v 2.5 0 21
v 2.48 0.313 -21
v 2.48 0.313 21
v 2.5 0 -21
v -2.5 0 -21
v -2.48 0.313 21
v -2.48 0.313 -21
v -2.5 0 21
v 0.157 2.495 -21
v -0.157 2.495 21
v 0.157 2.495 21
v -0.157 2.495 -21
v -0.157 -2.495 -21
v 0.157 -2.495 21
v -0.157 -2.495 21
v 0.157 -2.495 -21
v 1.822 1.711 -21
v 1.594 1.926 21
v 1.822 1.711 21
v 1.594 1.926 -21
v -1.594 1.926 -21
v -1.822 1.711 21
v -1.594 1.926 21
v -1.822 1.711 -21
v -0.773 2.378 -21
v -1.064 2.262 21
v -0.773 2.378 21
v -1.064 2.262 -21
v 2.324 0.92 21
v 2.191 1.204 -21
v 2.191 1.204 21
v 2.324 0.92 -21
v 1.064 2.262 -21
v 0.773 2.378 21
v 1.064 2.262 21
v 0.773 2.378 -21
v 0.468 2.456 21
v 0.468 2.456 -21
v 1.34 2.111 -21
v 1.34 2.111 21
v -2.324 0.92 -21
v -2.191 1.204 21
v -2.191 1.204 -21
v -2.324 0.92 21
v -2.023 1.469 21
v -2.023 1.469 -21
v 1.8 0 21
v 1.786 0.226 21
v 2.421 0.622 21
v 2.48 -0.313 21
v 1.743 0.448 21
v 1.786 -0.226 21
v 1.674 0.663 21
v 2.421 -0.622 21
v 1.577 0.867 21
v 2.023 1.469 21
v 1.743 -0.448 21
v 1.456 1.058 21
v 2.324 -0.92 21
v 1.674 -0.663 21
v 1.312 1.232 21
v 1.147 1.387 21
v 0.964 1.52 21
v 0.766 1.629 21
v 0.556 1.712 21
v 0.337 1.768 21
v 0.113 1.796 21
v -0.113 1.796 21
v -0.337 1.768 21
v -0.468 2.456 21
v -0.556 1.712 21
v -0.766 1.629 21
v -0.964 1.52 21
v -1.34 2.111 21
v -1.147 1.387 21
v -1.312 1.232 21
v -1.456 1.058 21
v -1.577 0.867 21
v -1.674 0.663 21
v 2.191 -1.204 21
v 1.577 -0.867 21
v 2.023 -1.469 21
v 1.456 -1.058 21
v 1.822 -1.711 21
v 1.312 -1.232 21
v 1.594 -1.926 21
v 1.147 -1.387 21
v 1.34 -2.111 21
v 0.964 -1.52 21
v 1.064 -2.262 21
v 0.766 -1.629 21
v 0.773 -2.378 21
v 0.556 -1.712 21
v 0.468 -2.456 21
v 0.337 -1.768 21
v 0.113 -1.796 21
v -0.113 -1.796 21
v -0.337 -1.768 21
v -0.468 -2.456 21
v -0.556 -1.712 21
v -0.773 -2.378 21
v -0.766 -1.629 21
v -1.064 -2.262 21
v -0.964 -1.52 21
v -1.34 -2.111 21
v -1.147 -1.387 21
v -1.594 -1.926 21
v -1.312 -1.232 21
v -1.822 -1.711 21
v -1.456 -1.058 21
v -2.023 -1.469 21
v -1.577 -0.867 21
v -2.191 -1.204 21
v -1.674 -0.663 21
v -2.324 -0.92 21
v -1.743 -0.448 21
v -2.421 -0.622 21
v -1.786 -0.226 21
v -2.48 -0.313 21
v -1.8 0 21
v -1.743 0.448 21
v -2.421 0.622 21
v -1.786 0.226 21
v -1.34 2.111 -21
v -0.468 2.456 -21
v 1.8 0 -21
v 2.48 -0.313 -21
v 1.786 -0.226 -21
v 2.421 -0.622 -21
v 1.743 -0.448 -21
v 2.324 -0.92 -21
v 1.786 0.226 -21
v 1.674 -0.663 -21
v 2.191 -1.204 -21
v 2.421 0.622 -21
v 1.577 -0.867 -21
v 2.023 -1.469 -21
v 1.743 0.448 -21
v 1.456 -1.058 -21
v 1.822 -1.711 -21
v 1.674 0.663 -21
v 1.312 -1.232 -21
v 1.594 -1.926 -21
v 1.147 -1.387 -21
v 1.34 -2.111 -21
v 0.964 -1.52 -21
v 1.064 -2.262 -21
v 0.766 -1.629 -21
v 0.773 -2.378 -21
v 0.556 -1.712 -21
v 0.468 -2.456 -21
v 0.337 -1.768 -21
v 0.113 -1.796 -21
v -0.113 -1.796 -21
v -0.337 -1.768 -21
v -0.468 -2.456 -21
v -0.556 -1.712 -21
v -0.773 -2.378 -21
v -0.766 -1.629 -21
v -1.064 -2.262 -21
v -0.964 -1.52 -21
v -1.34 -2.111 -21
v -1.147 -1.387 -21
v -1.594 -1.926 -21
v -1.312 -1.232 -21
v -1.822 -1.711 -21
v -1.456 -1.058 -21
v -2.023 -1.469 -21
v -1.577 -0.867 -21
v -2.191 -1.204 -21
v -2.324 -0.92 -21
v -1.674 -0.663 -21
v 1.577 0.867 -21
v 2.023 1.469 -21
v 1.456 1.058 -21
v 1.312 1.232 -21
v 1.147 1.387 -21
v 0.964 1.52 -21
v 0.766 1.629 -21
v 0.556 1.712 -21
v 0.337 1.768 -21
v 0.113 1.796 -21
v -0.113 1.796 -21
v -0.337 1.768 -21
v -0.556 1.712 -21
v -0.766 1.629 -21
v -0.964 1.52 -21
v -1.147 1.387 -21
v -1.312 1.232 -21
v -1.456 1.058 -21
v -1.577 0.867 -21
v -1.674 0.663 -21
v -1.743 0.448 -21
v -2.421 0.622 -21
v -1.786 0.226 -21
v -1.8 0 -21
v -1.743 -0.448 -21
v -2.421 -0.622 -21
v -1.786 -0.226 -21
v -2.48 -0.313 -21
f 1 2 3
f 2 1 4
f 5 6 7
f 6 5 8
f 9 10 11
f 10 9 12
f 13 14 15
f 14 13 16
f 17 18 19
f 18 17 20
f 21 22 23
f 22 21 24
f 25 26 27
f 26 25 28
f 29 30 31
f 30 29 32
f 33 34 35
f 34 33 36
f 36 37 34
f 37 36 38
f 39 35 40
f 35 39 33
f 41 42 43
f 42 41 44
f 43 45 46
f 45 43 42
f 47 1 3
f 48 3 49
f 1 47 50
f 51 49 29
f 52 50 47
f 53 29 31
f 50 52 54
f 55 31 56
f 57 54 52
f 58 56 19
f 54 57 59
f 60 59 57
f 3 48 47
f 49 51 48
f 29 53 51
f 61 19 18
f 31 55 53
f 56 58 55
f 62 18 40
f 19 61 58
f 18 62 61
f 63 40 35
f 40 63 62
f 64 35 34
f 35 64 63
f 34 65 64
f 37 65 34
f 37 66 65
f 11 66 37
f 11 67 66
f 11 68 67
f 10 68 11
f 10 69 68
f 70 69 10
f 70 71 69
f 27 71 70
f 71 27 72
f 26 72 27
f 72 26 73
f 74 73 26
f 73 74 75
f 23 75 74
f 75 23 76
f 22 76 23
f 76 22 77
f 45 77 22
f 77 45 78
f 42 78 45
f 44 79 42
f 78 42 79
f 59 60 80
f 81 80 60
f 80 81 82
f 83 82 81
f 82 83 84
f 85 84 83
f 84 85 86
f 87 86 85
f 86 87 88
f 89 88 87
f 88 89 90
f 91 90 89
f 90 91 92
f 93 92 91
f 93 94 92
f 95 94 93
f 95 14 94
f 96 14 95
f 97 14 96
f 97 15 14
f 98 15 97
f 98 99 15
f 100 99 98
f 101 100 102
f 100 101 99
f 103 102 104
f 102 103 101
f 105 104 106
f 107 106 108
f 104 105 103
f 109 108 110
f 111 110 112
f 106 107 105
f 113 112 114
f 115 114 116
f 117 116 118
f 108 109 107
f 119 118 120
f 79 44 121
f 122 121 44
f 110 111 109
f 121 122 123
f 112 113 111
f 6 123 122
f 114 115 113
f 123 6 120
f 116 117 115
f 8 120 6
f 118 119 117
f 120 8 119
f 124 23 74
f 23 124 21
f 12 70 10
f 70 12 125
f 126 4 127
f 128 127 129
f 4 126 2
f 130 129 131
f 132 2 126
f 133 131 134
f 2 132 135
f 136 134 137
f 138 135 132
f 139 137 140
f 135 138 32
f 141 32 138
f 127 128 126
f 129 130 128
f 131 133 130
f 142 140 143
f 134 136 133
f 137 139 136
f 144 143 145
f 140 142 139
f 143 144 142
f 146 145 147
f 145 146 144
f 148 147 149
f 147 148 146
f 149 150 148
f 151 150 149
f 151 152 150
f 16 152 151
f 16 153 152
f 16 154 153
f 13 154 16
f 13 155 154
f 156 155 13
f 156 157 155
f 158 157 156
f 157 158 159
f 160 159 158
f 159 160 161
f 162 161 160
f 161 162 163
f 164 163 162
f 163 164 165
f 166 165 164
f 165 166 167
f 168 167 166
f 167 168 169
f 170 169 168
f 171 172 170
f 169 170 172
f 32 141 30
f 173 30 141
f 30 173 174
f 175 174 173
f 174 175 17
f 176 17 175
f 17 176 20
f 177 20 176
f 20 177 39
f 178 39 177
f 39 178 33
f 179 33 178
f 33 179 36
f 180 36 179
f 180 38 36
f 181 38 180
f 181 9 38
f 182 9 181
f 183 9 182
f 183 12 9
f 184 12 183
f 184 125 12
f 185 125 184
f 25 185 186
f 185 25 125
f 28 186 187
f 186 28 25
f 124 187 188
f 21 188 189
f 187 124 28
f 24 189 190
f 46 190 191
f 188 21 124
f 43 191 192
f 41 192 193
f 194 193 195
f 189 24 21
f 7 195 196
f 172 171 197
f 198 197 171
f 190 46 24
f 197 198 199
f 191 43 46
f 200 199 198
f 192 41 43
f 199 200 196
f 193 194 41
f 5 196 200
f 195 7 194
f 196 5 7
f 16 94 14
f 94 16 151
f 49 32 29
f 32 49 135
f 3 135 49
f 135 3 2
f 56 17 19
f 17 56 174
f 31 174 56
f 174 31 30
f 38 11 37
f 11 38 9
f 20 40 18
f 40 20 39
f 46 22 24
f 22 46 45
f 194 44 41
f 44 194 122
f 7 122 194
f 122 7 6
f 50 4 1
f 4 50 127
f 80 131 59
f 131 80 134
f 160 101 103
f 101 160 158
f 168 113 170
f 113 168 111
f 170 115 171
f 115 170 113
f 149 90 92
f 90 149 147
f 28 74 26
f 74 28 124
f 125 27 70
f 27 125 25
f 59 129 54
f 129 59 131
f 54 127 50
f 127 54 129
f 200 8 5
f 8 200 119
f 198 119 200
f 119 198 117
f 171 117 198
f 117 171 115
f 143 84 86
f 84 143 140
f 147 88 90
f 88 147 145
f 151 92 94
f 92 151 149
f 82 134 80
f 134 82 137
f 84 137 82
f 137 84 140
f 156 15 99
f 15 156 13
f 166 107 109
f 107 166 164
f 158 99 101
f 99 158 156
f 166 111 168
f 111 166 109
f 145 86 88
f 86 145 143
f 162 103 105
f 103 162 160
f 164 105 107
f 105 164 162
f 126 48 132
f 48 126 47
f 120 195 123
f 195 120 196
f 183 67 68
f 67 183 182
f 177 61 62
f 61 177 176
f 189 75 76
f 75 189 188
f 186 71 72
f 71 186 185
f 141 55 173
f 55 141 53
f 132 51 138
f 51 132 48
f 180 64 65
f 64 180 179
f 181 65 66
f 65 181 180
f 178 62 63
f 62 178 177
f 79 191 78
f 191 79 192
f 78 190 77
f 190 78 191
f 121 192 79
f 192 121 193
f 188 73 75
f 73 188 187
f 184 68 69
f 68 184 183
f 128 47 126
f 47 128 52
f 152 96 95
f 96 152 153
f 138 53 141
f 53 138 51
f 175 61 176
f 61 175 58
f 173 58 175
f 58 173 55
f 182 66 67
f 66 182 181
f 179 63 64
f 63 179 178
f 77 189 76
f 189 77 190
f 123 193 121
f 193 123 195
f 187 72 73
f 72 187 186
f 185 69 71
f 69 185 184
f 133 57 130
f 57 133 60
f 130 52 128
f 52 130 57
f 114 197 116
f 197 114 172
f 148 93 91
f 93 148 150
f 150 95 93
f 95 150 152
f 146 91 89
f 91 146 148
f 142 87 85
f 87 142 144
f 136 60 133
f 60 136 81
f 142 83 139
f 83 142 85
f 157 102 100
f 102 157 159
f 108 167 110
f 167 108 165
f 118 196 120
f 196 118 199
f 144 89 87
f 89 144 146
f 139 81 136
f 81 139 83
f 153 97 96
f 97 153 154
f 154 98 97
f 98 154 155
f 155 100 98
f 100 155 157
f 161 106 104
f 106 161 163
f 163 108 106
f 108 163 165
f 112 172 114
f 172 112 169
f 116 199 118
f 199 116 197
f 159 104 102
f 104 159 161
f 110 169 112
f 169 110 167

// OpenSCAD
$fn = 50;


difference() {
	union() {
		translate(v = [0, 0, -21.0000000000]) {
			cylinder(h = 42, r = 2.5000000000);
		}
	}
	union() {
		translate(v = [0, 0, -100.0000000000]) {
			cylinder(h = 200, r = 1.8000000000);
		}
	}
}
